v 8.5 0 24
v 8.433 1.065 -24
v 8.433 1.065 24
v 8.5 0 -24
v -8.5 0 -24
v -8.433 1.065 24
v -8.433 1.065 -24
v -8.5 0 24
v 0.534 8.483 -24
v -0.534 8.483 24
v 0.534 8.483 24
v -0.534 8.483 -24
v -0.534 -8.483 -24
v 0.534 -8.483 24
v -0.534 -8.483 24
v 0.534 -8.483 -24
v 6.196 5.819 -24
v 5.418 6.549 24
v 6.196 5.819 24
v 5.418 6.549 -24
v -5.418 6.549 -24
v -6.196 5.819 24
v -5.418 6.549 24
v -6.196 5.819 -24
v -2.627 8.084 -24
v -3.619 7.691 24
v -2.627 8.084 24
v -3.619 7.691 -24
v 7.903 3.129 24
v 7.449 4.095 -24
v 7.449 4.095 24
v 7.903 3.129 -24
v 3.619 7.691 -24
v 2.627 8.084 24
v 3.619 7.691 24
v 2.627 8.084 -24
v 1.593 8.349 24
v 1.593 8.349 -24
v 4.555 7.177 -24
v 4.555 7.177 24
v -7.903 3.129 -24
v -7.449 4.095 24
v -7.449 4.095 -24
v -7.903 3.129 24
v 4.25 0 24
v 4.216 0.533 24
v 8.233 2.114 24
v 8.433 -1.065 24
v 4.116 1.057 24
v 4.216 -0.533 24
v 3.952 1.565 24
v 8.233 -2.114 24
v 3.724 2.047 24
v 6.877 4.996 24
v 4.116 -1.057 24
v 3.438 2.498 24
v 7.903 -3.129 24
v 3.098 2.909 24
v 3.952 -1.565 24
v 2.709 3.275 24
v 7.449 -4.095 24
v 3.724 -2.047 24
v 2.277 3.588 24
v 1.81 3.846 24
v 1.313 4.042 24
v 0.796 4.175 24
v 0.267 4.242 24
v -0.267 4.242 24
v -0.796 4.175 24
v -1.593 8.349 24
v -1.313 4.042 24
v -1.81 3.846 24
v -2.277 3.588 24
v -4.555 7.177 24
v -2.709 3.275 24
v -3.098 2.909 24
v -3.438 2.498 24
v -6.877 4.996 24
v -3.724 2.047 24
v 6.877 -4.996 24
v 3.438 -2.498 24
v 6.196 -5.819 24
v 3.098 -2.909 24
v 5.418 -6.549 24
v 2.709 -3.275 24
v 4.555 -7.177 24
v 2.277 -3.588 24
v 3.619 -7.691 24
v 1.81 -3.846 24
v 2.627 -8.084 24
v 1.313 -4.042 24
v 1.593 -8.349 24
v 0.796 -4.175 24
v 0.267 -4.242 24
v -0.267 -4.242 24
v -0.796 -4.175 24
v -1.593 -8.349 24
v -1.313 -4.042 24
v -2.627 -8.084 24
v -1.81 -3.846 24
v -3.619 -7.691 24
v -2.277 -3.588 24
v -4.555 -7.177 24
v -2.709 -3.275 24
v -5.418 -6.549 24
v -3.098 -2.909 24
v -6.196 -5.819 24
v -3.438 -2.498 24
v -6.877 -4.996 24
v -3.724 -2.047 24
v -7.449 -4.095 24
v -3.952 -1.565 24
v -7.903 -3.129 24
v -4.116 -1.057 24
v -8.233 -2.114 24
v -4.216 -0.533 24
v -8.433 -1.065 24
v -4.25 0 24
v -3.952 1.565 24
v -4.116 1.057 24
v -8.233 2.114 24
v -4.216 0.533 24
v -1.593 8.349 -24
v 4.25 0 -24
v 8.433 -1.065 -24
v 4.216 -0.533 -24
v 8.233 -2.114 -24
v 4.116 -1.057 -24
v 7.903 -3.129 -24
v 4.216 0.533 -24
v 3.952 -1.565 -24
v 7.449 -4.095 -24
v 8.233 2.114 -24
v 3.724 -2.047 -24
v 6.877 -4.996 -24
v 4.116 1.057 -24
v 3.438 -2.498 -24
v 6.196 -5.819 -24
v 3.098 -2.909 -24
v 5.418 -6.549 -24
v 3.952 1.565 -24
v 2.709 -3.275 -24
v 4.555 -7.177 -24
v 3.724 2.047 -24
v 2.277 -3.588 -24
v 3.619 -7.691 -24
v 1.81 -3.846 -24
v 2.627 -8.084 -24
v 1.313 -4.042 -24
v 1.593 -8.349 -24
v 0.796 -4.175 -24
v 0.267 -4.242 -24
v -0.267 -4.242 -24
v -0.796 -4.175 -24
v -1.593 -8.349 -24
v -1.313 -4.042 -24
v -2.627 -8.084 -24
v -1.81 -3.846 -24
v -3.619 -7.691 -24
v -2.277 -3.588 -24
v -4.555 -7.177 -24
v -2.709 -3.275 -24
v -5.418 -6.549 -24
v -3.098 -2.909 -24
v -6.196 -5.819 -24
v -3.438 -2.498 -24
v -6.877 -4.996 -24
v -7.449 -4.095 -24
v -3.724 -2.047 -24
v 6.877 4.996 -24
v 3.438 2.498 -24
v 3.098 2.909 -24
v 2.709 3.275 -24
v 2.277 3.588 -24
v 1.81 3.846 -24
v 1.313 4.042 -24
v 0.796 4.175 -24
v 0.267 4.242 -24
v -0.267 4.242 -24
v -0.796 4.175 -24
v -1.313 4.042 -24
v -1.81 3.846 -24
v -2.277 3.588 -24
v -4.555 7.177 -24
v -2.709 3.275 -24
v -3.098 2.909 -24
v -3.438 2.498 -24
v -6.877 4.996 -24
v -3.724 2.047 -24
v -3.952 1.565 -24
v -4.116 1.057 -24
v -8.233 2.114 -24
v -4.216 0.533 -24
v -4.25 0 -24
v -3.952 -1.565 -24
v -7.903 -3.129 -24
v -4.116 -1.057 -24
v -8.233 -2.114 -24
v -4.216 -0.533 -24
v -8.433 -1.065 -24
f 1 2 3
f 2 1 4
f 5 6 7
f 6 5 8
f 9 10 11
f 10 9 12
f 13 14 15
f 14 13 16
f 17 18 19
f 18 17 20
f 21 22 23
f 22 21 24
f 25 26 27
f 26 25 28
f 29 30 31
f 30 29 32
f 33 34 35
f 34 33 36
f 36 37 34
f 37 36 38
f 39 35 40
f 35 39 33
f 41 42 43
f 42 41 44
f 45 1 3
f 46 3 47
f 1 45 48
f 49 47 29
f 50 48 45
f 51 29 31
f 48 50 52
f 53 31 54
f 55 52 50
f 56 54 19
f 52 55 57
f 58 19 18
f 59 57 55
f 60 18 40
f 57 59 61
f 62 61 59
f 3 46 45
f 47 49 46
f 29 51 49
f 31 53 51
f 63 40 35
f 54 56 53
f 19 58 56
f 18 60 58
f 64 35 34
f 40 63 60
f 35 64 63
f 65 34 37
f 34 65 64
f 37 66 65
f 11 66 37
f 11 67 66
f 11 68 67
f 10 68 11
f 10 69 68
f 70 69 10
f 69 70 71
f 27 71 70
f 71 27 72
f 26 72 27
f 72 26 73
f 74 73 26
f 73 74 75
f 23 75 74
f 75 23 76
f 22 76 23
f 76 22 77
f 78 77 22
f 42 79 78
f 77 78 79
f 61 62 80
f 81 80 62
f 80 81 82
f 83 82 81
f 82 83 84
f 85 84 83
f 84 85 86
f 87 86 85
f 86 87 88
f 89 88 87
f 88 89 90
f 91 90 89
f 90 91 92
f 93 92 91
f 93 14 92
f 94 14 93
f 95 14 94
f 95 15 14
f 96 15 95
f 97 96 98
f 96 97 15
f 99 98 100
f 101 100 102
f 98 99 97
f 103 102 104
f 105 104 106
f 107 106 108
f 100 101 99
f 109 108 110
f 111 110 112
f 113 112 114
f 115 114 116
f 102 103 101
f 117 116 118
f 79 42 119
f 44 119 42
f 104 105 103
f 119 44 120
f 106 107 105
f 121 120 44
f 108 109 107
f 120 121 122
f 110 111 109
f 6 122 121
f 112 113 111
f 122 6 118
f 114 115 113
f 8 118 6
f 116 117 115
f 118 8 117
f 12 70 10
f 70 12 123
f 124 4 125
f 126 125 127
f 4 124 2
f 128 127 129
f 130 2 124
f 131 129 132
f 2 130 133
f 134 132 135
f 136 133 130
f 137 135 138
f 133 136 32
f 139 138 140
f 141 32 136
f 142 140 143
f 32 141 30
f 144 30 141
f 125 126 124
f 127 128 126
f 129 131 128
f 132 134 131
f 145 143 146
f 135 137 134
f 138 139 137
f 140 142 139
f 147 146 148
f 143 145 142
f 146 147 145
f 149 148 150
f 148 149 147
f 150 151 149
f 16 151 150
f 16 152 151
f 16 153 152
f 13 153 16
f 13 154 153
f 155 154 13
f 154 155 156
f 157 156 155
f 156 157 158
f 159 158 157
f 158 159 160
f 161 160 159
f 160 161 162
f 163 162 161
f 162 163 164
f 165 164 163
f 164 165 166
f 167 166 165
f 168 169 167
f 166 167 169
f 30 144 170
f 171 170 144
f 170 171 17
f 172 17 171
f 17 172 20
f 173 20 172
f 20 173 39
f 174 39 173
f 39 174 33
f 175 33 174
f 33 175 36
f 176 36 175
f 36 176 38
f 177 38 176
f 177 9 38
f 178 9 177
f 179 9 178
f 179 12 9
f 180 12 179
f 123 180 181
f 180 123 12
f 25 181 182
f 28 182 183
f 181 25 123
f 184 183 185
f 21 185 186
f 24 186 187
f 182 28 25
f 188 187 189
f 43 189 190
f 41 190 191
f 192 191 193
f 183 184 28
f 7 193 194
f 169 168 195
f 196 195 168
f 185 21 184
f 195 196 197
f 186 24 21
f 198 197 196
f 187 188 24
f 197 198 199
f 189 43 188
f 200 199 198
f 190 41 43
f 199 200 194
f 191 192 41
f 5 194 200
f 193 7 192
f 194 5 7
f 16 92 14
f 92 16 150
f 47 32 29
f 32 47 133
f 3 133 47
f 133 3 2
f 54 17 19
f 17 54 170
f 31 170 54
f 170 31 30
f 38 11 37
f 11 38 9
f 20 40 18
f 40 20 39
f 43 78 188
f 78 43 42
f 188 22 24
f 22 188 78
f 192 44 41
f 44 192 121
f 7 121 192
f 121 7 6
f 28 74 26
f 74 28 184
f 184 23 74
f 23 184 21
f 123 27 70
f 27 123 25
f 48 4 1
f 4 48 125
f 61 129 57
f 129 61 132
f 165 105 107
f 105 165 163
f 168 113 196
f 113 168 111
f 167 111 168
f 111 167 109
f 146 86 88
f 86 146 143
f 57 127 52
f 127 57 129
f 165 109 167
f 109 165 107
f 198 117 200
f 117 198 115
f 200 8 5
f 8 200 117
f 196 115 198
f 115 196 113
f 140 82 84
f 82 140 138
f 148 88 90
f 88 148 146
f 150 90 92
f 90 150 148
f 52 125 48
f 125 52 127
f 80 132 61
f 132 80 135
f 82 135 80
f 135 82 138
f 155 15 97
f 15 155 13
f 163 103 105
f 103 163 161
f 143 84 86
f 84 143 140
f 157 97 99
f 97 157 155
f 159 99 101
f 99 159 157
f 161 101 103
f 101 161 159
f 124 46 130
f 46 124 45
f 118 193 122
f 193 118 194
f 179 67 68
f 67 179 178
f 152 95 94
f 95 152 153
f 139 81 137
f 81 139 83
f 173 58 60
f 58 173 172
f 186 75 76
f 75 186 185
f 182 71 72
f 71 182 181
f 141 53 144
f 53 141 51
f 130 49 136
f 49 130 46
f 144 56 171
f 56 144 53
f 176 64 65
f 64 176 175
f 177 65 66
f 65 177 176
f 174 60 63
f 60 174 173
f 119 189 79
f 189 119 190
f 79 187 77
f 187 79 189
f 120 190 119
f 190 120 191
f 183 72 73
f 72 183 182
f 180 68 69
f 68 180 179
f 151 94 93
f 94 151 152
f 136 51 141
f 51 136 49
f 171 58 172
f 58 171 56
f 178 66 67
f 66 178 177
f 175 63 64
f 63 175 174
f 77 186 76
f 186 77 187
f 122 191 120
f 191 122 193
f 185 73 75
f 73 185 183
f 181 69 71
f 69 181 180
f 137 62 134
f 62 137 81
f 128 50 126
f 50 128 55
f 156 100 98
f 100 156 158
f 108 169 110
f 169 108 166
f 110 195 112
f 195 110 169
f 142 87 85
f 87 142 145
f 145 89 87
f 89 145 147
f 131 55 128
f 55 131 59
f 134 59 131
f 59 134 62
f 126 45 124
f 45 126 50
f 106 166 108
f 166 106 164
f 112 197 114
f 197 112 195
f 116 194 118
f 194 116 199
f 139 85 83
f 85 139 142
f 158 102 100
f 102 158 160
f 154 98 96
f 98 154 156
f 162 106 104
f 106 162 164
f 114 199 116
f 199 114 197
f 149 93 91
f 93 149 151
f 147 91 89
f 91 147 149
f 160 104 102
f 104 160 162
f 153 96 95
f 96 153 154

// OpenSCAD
$fn = 50;


difference() {
	union() {
		translate(v = [0, 0, -24.0000000000]) {
			cylinder(h = 48, r = 8.5000000000);
		}
	}
	union() {
		translate(v = [0, 0, -100.0000000000]) {
			cylinder(h = 200, r = 4.2500000000);
		}
	}
}
